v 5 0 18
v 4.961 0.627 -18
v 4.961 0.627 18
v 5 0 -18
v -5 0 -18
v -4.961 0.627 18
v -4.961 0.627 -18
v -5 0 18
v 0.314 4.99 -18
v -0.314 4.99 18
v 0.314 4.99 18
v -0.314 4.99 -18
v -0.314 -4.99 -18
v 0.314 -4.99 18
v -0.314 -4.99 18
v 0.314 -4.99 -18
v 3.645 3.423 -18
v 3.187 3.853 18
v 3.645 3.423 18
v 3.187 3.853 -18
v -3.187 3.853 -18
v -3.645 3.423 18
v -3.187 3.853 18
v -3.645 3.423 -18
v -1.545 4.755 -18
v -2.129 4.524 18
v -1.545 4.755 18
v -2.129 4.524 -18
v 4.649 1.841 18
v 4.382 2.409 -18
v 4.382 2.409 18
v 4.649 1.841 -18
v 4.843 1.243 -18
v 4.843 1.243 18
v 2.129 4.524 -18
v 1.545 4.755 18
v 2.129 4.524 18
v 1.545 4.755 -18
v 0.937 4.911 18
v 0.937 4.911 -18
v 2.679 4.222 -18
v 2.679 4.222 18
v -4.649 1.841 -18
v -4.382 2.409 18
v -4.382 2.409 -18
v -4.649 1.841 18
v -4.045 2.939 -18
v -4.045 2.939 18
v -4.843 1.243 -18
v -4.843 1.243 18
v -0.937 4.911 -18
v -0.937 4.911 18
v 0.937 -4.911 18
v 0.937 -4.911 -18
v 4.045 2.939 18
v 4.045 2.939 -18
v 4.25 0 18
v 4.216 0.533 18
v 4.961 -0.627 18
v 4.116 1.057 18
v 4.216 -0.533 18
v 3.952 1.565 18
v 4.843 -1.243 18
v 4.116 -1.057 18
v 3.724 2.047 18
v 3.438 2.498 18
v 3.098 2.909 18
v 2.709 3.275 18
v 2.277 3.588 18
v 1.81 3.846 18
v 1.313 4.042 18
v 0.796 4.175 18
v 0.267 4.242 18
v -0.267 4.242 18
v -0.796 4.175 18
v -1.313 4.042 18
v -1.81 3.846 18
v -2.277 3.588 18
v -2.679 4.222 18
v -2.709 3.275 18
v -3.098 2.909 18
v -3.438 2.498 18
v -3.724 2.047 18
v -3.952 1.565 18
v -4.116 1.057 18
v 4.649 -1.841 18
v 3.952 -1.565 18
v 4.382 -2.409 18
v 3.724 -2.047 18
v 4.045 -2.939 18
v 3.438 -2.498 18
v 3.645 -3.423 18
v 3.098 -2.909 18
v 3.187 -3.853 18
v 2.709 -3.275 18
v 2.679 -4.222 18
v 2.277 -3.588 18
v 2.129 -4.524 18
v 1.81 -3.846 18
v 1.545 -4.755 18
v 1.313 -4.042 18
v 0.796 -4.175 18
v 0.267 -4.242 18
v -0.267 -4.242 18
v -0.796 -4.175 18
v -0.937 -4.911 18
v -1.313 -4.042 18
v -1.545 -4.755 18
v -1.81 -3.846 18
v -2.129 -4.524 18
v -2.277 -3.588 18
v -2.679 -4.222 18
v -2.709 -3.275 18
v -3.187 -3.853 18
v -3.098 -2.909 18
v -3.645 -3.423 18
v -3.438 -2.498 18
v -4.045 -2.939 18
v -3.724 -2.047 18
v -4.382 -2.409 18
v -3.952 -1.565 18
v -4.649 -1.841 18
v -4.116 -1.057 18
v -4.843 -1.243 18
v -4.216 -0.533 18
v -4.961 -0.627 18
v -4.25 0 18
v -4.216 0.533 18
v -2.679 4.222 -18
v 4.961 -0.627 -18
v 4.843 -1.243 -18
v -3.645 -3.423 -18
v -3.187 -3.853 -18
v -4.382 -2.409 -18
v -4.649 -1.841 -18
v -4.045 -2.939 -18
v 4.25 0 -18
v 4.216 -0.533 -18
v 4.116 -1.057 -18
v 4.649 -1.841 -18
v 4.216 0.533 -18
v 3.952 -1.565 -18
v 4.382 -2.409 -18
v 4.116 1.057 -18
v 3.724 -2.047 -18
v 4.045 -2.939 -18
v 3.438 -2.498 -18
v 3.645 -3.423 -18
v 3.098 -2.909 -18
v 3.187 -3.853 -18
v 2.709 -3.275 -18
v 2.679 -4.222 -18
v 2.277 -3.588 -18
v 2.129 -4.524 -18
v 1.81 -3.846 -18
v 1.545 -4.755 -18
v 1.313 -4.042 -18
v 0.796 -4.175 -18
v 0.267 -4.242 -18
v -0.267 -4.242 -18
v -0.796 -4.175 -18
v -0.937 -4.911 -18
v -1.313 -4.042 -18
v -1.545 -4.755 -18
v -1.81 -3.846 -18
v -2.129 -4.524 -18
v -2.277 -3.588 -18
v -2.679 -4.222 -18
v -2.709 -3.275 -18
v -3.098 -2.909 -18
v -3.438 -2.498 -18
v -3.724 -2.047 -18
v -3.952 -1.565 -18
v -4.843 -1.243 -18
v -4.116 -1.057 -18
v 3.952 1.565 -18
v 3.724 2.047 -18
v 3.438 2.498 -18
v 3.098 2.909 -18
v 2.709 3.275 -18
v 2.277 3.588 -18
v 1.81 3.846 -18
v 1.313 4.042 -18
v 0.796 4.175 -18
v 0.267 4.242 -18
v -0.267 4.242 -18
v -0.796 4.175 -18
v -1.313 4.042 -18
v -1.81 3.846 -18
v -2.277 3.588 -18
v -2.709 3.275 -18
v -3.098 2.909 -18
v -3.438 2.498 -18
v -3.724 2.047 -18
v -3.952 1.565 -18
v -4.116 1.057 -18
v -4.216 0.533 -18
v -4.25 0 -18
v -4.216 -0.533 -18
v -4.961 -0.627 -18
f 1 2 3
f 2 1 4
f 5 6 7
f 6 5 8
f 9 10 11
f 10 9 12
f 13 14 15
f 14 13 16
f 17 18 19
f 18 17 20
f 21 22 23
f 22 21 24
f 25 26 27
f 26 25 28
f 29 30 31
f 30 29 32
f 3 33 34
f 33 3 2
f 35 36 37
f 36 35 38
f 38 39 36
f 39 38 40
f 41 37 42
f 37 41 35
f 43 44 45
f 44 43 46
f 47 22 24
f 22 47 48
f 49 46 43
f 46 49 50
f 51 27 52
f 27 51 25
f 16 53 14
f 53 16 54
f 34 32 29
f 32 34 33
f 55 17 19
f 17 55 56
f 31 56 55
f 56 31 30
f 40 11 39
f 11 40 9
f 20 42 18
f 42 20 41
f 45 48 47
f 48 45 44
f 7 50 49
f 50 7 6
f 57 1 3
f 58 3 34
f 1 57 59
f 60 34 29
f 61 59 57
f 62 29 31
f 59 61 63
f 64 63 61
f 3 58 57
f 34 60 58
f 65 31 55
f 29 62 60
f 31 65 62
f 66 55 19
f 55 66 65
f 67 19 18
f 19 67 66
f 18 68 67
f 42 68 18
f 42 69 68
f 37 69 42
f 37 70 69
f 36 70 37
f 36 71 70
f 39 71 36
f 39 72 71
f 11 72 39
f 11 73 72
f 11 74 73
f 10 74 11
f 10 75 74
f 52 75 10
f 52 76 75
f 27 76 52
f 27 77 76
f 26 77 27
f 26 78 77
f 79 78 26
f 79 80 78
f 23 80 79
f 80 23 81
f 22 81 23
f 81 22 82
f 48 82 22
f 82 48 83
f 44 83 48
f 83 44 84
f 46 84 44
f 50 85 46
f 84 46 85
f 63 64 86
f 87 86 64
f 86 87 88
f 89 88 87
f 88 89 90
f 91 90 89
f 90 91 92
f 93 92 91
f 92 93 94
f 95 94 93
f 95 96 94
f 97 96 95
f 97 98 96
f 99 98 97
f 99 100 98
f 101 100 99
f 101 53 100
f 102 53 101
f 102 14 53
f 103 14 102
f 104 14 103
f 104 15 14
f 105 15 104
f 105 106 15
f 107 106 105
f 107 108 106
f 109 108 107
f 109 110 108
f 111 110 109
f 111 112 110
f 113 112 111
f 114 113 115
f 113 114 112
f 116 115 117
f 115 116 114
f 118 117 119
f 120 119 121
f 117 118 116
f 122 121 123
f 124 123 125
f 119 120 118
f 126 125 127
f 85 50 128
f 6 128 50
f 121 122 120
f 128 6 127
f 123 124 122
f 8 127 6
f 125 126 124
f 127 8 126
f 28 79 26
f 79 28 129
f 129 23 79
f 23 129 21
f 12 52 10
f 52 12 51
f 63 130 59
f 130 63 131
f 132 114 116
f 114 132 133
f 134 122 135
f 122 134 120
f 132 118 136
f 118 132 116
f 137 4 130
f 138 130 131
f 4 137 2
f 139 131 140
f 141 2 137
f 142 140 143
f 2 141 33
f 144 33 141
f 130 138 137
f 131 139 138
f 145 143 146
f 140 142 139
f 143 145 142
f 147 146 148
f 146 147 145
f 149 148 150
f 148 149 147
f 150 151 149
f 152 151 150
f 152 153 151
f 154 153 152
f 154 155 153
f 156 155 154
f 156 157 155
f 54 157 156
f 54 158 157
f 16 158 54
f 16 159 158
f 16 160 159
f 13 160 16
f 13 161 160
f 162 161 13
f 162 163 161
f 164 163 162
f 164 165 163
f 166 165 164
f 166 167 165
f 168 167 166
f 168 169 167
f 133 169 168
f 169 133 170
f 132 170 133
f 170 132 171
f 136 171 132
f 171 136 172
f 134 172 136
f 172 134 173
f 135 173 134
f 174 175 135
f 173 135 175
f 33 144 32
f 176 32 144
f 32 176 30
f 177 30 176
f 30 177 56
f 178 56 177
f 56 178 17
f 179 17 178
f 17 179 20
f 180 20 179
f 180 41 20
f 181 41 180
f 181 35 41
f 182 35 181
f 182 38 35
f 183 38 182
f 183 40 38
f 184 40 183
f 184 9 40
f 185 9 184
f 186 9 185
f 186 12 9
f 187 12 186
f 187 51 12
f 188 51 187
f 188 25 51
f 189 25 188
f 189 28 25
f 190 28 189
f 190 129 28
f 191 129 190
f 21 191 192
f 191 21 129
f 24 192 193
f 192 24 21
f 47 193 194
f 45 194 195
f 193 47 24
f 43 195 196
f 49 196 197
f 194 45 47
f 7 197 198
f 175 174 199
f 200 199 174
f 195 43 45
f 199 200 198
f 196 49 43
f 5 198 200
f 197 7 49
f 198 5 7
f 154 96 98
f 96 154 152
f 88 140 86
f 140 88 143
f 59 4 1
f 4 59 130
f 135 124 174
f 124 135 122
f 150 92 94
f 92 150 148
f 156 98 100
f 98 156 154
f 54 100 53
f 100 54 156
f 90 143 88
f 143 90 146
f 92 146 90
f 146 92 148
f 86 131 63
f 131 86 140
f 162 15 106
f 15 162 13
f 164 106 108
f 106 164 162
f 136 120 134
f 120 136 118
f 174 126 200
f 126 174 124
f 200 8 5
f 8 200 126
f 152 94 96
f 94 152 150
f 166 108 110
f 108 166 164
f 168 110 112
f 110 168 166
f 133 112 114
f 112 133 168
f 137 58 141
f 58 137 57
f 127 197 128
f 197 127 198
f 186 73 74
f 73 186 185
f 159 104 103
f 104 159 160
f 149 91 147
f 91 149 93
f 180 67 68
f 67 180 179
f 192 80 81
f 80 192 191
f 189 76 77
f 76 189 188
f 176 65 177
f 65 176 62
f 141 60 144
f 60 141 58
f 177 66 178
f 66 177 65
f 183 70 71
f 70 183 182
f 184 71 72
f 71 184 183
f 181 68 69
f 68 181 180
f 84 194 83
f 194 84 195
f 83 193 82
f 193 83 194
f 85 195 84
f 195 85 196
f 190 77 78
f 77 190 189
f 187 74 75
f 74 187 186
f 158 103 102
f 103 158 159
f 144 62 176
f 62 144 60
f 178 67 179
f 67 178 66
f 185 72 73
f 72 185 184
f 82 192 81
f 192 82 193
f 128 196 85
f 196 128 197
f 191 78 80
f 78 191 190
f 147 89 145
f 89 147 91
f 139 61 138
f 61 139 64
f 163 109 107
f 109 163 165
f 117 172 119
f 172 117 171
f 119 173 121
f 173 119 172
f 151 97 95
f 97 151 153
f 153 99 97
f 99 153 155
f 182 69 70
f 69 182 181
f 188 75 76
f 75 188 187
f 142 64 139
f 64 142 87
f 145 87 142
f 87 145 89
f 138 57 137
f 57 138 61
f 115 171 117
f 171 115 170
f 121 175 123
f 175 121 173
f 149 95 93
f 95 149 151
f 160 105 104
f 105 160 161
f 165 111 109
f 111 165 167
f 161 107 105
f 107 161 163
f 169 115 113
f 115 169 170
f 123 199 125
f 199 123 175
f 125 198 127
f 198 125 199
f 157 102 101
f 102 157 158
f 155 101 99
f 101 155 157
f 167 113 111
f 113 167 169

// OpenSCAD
$fn = 50;


difference() {
	union() {
		translate(v = [0, 0, -18.0000000000]) {
			cylinder(h = 36, r = 5.0000000000);
		}
	}
	union() {
		translate(v = [0, 0, -100.0000000000]) {
			cylinder(h = 200, r = 4.2500000000);
		}
	}
}
